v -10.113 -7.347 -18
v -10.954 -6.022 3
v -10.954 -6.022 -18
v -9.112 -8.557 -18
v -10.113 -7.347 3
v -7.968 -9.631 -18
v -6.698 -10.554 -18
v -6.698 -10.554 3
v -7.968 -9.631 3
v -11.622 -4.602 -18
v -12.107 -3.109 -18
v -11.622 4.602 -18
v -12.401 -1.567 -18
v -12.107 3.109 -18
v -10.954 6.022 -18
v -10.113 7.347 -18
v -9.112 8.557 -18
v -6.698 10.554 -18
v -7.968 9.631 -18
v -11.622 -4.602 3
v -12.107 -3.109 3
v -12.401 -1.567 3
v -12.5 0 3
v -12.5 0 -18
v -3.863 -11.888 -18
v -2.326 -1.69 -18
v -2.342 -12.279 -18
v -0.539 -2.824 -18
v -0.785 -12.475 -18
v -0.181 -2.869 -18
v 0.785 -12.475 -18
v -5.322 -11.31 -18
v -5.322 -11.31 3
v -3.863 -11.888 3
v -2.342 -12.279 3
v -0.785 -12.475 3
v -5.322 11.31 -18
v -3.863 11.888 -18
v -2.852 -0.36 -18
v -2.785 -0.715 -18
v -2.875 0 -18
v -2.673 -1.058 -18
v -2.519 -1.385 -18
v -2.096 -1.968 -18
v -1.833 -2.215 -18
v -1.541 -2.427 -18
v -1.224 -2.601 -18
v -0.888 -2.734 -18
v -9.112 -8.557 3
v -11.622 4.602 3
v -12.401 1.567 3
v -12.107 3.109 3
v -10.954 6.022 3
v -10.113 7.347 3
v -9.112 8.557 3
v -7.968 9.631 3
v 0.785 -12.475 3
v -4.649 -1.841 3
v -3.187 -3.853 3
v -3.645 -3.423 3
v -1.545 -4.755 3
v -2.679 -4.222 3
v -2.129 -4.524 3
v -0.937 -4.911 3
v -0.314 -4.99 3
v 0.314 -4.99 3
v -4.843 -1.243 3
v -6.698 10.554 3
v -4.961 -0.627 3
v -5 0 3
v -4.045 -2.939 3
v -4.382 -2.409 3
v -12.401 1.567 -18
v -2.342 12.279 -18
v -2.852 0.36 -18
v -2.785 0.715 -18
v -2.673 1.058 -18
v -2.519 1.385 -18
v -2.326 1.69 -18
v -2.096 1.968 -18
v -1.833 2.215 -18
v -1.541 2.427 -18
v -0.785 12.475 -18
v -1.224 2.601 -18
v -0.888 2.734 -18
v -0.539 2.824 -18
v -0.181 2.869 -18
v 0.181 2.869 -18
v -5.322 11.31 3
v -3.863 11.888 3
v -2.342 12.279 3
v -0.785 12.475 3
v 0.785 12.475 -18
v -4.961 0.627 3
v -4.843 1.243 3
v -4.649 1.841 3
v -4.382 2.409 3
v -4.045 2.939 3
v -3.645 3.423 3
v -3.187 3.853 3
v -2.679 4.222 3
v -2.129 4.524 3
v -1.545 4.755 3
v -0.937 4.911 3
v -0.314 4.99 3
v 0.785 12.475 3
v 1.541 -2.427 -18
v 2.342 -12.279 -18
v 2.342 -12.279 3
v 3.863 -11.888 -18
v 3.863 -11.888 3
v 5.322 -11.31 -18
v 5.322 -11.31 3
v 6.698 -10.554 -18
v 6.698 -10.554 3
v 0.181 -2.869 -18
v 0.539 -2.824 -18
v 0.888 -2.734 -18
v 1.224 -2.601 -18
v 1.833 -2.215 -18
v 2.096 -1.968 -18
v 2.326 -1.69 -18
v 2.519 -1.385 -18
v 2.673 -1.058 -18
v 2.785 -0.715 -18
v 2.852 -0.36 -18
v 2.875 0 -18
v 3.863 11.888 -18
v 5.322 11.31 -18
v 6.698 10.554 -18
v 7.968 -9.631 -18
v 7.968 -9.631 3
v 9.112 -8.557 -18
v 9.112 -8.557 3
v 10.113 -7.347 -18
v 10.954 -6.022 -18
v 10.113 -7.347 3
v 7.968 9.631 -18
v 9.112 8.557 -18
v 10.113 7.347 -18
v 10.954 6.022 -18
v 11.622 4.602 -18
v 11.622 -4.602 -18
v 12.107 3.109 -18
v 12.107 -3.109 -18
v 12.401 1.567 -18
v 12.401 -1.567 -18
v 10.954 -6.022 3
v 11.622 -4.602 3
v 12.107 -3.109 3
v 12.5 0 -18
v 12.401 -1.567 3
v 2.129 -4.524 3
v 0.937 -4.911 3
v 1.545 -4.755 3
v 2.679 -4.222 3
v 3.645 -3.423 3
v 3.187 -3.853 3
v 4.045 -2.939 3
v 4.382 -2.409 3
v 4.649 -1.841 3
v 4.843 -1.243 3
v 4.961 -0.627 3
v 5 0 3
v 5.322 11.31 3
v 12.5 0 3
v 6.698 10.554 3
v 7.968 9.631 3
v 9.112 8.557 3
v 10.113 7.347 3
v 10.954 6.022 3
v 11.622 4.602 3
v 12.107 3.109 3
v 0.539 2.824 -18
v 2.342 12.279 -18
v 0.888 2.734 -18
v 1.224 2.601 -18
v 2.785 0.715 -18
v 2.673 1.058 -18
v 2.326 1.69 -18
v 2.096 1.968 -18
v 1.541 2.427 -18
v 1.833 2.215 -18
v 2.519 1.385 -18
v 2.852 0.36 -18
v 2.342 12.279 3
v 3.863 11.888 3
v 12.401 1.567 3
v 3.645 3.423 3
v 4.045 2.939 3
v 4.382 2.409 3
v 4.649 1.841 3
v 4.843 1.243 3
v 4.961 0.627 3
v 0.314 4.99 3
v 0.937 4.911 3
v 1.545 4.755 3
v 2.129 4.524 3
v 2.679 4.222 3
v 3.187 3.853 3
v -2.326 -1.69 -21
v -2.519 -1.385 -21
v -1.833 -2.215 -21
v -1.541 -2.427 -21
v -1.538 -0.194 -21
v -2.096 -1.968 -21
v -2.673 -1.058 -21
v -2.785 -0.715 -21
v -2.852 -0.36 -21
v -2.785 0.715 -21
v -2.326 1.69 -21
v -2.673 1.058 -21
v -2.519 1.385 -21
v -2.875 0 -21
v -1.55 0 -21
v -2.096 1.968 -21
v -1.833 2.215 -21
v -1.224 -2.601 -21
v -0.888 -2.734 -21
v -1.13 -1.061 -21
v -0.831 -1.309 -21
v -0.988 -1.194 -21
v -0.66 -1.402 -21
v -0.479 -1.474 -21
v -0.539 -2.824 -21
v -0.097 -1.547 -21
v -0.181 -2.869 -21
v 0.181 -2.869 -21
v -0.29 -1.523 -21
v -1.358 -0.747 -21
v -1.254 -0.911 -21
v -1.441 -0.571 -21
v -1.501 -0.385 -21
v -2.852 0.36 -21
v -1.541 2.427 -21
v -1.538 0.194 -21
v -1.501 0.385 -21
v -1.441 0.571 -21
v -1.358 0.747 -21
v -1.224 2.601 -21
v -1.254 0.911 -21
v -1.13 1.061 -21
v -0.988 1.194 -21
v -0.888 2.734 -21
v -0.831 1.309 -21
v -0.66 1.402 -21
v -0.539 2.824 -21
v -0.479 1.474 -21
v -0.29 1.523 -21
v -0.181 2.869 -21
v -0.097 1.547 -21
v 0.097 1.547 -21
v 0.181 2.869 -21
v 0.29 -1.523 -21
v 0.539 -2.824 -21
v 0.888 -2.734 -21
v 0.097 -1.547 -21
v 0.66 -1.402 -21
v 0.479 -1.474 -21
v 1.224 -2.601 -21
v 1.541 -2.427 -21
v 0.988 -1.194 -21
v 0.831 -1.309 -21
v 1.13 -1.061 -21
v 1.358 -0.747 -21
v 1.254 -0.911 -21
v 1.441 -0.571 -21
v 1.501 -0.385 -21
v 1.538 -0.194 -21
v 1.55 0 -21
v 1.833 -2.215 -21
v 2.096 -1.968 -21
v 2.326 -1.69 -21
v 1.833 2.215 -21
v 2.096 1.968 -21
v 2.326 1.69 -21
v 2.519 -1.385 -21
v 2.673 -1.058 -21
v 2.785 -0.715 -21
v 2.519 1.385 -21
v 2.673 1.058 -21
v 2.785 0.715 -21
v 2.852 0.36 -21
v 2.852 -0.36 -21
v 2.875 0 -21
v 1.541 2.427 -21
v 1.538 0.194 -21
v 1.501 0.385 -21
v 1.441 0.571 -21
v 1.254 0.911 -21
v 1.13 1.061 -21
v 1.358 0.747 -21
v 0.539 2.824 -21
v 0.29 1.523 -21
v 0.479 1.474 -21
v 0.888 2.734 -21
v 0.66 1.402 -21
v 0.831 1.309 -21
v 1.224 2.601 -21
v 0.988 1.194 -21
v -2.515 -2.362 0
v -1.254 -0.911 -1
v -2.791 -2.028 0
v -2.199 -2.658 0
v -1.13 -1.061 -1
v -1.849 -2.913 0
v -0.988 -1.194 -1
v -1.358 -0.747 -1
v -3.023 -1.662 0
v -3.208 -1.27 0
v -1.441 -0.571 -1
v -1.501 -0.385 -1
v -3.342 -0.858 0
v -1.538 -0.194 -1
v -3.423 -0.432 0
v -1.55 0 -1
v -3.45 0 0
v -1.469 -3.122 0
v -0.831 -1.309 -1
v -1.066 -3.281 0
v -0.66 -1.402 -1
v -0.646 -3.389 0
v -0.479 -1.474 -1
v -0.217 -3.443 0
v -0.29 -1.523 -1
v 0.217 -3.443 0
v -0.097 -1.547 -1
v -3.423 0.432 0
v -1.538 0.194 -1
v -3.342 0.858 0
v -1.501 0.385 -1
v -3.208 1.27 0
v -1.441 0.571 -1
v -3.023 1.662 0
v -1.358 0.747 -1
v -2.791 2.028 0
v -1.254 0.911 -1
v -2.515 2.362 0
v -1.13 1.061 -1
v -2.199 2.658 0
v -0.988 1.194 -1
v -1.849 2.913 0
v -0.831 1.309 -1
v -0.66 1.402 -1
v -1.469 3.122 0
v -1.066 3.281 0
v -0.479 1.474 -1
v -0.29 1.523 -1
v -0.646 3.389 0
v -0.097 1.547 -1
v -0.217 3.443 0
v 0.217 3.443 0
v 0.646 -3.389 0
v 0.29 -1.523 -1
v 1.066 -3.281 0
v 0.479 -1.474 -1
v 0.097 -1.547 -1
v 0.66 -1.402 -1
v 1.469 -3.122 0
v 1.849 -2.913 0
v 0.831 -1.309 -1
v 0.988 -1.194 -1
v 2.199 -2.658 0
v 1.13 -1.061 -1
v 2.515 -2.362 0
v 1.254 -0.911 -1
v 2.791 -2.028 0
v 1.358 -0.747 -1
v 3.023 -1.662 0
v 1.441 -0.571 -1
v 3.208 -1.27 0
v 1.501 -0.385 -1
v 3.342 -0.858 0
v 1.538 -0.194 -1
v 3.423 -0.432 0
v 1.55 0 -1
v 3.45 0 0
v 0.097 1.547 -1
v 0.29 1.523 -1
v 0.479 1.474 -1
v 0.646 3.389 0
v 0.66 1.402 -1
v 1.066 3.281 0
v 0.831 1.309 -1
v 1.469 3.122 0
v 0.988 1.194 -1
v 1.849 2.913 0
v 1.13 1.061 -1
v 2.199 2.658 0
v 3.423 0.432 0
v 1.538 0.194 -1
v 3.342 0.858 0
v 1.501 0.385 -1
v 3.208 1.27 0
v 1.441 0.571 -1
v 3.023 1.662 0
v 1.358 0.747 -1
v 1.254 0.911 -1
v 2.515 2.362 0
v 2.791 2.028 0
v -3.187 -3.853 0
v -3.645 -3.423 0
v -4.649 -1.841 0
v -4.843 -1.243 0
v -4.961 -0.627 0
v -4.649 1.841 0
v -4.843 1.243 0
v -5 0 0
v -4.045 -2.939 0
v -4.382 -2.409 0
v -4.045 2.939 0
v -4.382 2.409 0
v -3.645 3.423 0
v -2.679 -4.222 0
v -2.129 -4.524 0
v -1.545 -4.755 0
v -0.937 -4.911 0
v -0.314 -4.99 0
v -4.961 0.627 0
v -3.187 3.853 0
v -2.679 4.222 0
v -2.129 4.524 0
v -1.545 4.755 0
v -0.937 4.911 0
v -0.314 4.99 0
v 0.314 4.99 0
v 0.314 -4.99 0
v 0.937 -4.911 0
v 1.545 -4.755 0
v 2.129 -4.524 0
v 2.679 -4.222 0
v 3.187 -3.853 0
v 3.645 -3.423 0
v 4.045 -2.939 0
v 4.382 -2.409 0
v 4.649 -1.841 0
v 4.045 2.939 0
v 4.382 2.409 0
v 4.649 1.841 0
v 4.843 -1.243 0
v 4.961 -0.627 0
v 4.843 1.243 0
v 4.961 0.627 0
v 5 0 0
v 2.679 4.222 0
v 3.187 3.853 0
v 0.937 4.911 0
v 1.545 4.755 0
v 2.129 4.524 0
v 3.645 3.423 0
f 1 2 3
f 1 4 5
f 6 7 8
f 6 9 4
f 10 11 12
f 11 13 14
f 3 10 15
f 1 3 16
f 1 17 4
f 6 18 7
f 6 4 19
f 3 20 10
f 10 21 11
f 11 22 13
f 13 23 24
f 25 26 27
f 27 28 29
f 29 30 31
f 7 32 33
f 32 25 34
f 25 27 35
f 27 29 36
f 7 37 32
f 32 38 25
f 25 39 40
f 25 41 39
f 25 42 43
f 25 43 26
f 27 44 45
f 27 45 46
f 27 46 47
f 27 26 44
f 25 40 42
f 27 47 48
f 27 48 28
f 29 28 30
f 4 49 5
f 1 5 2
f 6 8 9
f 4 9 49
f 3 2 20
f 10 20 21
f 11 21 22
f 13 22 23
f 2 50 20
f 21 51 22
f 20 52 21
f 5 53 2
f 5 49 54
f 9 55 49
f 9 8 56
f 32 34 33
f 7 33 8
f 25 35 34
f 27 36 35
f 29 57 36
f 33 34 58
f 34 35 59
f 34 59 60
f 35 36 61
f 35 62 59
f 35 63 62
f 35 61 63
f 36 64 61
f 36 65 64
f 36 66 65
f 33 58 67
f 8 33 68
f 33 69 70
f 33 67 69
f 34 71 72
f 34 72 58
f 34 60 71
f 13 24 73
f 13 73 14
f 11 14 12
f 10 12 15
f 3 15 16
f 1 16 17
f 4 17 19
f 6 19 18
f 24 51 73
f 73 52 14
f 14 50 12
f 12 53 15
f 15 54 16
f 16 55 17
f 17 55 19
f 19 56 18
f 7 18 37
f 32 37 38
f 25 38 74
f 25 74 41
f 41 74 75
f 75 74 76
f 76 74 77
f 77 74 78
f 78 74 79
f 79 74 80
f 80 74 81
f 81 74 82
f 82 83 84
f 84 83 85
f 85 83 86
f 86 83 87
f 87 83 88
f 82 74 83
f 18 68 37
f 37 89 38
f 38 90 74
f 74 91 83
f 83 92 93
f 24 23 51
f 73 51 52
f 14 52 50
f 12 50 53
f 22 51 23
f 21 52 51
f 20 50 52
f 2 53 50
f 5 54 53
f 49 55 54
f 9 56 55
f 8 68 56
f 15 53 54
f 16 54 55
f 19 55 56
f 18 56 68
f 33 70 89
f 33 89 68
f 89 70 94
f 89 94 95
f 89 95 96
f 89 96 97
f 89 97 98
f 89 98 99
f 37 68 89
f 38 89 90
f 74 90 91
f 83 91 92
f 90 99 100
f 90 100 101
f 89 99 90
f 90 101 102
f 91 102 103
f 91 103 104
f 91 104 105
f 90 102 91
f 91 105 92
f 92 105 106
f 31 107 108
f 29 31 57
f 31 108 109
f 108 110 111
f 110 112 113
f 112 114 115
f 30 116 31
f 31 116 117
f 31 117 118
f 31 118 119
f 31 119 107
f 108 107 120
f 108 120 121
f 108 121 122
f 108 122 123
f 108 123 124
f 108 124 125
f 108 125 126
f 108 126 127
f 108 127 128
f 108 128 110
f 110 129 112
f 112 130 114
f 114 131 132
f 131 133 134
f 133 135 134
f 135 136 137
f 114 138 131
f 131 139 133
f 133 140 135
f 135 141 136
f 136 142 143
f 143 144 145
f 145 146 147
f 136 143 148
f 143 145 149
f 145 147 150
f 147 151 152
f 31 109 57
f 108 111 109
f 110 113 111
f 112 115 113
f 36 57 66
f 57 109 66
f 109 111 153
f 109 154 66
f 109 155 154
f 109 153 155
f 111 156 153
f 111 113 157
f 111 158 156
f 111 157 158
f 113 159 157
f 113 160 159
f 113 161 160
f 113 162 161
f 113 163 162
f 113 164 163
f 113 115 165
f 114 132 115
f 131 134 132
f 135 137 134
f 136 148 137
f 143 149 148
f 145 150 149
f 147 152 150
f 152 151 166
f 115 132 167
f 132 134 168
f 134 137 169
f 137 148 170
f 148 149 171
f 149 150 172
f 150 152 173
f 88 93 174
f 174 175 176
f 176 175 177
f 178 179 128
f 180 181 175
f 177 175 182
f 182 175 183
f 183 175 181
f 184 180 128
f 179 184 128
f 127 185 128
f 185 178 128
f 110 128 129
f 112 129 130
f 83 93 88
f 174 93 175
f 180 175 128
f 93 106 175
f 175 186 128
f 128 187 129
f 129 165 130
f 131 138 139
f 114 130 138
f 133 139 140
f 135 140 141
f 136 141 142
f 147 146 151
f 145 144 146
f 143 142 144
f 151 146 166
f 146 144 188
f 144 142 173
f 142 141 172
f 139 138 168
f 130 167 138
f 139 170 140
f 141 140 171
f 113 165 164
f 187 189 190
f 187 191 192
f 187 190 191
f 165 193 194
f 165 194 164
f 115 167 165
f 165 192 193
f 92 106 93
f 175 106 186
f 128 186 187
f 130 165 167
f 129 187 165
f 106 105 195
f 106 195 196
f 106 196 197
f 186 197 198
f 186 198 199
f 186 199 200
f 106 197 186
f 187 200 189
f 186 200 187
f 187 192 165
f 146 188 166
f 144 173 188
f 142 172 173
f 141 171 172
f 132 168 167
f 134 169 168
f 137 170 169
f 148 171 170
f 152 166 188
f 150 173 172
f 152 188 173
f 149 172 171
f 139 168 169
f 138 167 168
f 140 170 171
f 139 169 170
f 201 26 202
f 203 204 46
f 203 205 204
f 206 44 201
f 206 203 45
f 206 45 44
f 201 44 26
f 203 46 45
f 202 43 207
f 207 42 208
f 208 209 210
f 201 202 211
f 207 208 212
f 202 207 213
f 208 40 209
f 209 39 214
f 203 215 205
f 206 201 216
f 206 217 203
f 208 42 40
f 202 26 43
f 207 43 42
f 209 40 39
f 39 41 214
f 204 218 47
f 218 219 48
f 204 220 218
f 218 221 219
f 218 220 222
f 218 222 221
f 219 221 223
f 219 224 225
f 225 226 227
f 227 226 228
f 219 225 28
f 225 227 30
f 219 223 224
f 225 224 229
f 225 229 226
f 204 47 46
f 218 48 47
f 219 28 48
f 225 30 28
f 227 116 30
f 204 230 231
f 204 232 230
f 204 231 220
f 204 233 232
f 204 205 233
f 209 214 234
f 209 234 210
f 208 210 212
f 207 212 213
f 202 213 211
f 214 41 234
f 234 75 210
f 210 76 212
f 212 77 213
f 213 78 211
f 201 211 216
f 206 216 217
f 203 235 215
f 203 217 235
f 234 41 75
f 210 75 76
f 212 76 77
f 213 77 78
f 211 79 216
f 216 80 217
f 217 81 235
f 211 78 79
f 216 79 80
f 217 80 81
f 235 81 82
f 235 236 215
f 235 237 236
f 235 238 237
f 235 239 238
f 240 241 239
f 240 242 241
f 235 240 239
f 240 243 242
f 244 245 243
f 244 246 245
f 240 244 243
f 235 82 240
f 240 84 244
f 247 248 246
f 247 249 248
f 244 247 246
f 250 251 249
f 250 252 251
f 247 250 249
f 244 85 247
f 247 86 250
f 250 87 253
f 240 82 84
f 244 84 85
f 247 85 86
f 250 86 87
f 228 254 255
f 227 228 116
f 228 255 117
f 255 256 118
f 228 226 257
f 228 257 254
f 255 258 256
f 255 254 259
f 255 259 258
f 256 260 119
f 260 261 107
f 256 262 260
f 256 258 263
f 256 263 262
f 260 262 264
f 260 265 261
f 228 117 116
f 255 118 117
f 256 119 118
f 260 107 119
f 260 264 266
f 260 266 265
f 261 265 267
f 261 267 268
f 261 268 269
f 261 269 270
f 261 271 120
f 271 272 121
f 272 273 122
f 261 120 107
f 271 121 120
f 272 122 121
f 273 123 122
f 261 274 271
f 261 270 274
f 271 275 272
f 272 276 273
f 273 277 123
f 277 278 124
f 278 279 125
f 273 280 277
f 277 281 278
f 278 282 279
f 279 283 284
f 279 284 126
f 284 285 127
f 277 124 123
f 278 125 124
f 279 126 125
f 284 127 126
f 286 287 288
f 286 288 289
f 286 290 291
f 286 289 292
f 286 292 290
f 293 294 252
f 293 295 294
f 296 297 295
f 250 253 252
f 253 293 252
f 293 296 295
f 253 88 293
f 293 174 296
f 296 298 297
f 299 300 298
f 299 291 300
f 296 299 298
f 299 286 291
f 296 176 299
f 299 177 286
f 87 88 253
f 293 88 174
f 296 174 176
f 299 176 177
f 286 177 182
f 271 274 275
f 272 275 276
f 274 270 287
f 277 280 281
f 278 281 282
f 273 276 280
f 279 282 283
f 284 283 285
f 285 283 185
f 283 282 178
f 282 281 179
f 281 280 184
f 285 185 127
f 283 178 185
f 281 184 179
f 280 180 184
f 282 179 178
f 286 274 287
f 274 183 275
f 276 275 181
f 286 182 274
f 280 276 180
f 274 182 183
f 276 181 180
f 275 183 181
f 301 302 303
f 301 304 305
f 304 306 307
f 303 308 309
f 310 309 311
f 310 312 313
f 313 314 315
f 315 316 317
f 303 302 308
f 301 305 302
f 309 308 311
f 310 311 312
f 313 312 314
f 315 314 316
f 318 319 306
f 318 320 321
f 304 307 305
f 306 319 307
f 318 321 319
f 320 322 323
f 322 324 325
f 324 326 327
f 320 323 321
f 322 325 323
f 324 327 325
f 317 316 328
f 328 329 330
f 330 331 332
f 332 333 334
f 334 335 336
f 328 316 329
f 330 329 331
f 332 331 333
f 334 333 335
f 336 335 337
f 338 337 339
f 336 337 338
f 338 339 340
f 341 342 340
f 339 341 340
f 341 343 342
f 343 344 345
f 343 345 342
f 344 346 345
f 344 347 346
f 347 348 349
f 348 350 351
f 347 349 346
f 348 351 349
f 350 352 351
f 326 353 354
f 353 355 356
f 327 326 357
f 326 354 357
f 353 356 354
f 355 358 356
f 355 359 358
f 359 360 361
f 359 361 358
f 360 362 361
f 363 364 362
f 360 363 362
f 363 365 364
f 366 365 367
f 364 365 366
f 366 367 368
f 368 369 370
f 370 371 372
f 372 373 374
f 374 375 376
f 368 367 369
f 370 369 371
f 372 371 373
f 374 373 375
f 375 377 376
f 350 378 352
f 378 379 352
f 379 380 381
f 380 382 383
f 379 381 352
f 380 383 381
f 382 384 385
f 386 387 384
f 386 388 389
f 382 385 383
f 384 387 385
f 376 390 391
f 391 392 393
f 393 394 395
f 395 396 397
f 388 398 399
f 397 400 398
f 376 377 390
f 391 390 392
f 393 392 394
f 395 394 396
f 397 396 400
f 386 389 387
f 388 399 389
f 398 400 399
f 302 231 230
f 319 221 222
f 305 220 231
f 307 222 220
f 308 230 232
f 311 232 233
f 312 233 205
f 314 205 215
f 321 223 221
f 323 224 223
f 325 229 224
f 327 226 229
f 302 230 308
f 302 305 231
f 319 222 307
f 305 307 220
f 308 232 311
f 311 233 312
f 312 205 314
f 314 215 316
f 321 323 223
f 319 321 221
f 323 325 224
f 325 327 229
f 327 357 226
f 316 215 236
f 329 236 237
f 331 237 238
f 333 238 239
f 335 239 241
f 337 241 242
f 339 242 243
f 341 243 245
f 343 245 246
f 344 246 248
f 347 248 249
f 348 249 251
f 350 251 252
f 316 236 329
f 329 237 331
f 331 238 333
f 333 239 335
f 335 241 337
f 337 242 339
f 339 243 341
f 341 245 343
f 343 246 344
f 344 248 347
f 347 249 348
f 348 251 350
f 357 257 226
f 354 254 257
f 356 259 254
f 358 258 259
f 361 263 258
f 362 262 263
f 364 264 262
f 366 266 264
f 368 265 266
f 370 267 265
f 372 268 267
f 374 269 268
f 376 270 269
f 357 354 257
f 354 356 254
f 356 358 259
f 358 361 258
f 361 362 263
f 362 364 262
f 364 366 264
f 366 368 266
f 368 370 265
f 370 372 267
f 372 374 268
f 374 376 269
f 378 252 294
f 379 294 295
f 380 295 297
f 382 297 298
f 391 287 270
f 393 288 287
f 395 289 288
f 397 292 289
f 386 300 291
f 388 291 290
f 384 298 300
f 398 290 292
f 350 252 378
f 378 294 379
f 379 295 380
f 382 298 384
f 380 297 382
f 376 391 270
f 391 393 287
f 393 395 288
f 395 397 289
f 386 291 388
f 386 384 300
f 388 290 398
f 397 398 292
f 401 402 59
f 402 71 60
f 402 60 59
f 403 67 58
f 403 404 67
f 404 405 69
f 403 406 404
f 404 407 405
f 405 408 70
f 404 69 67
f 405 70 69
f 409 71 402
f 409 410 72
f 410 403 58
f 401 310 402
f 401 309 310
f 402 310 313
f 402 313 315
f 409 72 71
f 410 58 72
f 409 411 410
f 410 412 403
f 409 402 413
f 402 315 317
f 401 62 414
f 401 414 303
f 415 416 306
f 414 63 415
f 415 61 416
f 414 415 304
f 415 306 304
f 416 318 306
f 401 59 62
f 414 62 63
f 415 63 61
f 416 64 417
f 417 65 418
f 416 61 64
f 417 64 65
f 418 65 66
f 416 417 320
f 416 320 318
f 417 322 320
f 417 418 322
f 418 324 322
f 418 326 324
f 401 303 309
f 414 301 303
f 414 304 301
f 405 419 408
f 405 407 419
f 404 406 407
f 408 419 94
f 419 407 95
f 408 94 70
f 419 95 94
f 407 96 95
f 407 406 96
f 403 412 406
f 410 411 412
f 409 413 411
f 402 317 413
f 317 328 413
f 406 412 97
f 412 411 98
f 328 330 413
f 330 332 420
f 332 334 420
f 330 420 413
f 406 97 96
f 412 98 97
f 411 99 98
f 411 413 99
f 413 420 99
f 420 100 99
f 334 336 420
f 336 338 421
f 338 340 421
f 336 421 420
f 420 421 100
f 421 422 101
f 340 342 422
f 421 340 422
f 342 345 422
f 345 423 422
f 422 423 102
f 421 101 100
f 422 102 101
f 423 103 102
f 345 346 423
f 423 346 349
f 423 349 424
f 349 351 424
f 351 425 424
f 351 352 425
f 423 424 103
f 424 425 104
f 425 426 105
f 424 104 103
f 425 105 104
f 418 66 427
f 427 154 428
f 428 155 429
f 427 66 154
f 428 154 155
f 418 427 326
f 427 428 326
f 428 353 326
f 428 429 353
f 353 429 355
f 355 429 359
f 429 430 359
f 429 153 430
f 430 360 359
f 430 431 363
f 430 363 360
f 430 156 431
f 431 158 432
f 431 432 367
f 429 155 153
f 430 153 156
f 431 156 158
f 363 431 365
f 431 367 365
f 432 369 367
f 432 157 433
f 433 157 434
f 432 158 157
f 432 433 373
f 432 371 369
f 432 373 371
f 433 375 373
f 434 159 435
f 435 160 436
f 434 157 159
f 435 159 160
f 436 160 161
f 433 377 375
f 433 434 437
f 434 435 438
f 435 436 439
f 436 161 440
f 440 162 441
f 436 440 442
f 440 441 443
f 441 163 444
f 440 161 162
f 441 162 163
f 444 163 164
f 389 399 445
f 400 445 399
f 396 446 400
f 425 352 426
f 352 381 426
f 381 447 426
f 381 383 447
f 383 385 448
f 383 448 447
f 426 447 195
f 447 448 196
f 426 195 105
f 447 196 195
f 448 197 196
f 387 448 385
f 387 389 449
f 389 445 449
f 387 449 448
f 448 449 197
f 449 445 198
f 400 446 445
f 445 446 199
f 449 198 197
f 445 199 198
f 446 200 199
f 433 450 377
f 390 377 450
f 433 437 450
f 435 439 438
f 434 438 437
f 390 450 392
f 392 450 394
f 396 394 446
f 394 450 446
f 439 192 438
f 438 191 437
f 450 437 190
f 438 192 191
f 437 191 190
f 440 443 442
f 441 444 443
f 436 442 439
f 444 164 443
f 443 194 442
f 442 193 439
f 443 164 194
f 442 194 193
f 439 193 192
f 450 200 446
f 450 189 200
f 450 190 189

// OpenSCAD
$fn = 50;

difference() {
	union() {
		translate(v = [0, 0, -18.0]) {
			cylinder(h = 21, r = 12.5);
		}
		#translate(v = [0, 0, -21.0]) {
			cylinder(h = 21, r = 2.875);
		}
	}
	union() {
		translate(v = [0, 0, 0]) {
			rotate(a = [0, 0, 0]) {
				difference() {
					union() {
						translate(v = [0, 0, -21.0]) {
							cylinder(h = 21, r = 1.25);
						}
						translate(v = [0, 0, -1.0]) {
							cylinder(h = 1.0, r1 = 1.55, r2 = 3.45);
						}
						translate(v = [0, 0, -21.0]) {
							cylinder(h = 21, r = 1.55);
						}
						translate(v = [0, 0, -21.0]) {
							cylinder(h = 21, r = 1.25);
						}
					}
					union();
				}
			}
		}
		#cylinder(h = 3, r = 5.0);
	}
}
